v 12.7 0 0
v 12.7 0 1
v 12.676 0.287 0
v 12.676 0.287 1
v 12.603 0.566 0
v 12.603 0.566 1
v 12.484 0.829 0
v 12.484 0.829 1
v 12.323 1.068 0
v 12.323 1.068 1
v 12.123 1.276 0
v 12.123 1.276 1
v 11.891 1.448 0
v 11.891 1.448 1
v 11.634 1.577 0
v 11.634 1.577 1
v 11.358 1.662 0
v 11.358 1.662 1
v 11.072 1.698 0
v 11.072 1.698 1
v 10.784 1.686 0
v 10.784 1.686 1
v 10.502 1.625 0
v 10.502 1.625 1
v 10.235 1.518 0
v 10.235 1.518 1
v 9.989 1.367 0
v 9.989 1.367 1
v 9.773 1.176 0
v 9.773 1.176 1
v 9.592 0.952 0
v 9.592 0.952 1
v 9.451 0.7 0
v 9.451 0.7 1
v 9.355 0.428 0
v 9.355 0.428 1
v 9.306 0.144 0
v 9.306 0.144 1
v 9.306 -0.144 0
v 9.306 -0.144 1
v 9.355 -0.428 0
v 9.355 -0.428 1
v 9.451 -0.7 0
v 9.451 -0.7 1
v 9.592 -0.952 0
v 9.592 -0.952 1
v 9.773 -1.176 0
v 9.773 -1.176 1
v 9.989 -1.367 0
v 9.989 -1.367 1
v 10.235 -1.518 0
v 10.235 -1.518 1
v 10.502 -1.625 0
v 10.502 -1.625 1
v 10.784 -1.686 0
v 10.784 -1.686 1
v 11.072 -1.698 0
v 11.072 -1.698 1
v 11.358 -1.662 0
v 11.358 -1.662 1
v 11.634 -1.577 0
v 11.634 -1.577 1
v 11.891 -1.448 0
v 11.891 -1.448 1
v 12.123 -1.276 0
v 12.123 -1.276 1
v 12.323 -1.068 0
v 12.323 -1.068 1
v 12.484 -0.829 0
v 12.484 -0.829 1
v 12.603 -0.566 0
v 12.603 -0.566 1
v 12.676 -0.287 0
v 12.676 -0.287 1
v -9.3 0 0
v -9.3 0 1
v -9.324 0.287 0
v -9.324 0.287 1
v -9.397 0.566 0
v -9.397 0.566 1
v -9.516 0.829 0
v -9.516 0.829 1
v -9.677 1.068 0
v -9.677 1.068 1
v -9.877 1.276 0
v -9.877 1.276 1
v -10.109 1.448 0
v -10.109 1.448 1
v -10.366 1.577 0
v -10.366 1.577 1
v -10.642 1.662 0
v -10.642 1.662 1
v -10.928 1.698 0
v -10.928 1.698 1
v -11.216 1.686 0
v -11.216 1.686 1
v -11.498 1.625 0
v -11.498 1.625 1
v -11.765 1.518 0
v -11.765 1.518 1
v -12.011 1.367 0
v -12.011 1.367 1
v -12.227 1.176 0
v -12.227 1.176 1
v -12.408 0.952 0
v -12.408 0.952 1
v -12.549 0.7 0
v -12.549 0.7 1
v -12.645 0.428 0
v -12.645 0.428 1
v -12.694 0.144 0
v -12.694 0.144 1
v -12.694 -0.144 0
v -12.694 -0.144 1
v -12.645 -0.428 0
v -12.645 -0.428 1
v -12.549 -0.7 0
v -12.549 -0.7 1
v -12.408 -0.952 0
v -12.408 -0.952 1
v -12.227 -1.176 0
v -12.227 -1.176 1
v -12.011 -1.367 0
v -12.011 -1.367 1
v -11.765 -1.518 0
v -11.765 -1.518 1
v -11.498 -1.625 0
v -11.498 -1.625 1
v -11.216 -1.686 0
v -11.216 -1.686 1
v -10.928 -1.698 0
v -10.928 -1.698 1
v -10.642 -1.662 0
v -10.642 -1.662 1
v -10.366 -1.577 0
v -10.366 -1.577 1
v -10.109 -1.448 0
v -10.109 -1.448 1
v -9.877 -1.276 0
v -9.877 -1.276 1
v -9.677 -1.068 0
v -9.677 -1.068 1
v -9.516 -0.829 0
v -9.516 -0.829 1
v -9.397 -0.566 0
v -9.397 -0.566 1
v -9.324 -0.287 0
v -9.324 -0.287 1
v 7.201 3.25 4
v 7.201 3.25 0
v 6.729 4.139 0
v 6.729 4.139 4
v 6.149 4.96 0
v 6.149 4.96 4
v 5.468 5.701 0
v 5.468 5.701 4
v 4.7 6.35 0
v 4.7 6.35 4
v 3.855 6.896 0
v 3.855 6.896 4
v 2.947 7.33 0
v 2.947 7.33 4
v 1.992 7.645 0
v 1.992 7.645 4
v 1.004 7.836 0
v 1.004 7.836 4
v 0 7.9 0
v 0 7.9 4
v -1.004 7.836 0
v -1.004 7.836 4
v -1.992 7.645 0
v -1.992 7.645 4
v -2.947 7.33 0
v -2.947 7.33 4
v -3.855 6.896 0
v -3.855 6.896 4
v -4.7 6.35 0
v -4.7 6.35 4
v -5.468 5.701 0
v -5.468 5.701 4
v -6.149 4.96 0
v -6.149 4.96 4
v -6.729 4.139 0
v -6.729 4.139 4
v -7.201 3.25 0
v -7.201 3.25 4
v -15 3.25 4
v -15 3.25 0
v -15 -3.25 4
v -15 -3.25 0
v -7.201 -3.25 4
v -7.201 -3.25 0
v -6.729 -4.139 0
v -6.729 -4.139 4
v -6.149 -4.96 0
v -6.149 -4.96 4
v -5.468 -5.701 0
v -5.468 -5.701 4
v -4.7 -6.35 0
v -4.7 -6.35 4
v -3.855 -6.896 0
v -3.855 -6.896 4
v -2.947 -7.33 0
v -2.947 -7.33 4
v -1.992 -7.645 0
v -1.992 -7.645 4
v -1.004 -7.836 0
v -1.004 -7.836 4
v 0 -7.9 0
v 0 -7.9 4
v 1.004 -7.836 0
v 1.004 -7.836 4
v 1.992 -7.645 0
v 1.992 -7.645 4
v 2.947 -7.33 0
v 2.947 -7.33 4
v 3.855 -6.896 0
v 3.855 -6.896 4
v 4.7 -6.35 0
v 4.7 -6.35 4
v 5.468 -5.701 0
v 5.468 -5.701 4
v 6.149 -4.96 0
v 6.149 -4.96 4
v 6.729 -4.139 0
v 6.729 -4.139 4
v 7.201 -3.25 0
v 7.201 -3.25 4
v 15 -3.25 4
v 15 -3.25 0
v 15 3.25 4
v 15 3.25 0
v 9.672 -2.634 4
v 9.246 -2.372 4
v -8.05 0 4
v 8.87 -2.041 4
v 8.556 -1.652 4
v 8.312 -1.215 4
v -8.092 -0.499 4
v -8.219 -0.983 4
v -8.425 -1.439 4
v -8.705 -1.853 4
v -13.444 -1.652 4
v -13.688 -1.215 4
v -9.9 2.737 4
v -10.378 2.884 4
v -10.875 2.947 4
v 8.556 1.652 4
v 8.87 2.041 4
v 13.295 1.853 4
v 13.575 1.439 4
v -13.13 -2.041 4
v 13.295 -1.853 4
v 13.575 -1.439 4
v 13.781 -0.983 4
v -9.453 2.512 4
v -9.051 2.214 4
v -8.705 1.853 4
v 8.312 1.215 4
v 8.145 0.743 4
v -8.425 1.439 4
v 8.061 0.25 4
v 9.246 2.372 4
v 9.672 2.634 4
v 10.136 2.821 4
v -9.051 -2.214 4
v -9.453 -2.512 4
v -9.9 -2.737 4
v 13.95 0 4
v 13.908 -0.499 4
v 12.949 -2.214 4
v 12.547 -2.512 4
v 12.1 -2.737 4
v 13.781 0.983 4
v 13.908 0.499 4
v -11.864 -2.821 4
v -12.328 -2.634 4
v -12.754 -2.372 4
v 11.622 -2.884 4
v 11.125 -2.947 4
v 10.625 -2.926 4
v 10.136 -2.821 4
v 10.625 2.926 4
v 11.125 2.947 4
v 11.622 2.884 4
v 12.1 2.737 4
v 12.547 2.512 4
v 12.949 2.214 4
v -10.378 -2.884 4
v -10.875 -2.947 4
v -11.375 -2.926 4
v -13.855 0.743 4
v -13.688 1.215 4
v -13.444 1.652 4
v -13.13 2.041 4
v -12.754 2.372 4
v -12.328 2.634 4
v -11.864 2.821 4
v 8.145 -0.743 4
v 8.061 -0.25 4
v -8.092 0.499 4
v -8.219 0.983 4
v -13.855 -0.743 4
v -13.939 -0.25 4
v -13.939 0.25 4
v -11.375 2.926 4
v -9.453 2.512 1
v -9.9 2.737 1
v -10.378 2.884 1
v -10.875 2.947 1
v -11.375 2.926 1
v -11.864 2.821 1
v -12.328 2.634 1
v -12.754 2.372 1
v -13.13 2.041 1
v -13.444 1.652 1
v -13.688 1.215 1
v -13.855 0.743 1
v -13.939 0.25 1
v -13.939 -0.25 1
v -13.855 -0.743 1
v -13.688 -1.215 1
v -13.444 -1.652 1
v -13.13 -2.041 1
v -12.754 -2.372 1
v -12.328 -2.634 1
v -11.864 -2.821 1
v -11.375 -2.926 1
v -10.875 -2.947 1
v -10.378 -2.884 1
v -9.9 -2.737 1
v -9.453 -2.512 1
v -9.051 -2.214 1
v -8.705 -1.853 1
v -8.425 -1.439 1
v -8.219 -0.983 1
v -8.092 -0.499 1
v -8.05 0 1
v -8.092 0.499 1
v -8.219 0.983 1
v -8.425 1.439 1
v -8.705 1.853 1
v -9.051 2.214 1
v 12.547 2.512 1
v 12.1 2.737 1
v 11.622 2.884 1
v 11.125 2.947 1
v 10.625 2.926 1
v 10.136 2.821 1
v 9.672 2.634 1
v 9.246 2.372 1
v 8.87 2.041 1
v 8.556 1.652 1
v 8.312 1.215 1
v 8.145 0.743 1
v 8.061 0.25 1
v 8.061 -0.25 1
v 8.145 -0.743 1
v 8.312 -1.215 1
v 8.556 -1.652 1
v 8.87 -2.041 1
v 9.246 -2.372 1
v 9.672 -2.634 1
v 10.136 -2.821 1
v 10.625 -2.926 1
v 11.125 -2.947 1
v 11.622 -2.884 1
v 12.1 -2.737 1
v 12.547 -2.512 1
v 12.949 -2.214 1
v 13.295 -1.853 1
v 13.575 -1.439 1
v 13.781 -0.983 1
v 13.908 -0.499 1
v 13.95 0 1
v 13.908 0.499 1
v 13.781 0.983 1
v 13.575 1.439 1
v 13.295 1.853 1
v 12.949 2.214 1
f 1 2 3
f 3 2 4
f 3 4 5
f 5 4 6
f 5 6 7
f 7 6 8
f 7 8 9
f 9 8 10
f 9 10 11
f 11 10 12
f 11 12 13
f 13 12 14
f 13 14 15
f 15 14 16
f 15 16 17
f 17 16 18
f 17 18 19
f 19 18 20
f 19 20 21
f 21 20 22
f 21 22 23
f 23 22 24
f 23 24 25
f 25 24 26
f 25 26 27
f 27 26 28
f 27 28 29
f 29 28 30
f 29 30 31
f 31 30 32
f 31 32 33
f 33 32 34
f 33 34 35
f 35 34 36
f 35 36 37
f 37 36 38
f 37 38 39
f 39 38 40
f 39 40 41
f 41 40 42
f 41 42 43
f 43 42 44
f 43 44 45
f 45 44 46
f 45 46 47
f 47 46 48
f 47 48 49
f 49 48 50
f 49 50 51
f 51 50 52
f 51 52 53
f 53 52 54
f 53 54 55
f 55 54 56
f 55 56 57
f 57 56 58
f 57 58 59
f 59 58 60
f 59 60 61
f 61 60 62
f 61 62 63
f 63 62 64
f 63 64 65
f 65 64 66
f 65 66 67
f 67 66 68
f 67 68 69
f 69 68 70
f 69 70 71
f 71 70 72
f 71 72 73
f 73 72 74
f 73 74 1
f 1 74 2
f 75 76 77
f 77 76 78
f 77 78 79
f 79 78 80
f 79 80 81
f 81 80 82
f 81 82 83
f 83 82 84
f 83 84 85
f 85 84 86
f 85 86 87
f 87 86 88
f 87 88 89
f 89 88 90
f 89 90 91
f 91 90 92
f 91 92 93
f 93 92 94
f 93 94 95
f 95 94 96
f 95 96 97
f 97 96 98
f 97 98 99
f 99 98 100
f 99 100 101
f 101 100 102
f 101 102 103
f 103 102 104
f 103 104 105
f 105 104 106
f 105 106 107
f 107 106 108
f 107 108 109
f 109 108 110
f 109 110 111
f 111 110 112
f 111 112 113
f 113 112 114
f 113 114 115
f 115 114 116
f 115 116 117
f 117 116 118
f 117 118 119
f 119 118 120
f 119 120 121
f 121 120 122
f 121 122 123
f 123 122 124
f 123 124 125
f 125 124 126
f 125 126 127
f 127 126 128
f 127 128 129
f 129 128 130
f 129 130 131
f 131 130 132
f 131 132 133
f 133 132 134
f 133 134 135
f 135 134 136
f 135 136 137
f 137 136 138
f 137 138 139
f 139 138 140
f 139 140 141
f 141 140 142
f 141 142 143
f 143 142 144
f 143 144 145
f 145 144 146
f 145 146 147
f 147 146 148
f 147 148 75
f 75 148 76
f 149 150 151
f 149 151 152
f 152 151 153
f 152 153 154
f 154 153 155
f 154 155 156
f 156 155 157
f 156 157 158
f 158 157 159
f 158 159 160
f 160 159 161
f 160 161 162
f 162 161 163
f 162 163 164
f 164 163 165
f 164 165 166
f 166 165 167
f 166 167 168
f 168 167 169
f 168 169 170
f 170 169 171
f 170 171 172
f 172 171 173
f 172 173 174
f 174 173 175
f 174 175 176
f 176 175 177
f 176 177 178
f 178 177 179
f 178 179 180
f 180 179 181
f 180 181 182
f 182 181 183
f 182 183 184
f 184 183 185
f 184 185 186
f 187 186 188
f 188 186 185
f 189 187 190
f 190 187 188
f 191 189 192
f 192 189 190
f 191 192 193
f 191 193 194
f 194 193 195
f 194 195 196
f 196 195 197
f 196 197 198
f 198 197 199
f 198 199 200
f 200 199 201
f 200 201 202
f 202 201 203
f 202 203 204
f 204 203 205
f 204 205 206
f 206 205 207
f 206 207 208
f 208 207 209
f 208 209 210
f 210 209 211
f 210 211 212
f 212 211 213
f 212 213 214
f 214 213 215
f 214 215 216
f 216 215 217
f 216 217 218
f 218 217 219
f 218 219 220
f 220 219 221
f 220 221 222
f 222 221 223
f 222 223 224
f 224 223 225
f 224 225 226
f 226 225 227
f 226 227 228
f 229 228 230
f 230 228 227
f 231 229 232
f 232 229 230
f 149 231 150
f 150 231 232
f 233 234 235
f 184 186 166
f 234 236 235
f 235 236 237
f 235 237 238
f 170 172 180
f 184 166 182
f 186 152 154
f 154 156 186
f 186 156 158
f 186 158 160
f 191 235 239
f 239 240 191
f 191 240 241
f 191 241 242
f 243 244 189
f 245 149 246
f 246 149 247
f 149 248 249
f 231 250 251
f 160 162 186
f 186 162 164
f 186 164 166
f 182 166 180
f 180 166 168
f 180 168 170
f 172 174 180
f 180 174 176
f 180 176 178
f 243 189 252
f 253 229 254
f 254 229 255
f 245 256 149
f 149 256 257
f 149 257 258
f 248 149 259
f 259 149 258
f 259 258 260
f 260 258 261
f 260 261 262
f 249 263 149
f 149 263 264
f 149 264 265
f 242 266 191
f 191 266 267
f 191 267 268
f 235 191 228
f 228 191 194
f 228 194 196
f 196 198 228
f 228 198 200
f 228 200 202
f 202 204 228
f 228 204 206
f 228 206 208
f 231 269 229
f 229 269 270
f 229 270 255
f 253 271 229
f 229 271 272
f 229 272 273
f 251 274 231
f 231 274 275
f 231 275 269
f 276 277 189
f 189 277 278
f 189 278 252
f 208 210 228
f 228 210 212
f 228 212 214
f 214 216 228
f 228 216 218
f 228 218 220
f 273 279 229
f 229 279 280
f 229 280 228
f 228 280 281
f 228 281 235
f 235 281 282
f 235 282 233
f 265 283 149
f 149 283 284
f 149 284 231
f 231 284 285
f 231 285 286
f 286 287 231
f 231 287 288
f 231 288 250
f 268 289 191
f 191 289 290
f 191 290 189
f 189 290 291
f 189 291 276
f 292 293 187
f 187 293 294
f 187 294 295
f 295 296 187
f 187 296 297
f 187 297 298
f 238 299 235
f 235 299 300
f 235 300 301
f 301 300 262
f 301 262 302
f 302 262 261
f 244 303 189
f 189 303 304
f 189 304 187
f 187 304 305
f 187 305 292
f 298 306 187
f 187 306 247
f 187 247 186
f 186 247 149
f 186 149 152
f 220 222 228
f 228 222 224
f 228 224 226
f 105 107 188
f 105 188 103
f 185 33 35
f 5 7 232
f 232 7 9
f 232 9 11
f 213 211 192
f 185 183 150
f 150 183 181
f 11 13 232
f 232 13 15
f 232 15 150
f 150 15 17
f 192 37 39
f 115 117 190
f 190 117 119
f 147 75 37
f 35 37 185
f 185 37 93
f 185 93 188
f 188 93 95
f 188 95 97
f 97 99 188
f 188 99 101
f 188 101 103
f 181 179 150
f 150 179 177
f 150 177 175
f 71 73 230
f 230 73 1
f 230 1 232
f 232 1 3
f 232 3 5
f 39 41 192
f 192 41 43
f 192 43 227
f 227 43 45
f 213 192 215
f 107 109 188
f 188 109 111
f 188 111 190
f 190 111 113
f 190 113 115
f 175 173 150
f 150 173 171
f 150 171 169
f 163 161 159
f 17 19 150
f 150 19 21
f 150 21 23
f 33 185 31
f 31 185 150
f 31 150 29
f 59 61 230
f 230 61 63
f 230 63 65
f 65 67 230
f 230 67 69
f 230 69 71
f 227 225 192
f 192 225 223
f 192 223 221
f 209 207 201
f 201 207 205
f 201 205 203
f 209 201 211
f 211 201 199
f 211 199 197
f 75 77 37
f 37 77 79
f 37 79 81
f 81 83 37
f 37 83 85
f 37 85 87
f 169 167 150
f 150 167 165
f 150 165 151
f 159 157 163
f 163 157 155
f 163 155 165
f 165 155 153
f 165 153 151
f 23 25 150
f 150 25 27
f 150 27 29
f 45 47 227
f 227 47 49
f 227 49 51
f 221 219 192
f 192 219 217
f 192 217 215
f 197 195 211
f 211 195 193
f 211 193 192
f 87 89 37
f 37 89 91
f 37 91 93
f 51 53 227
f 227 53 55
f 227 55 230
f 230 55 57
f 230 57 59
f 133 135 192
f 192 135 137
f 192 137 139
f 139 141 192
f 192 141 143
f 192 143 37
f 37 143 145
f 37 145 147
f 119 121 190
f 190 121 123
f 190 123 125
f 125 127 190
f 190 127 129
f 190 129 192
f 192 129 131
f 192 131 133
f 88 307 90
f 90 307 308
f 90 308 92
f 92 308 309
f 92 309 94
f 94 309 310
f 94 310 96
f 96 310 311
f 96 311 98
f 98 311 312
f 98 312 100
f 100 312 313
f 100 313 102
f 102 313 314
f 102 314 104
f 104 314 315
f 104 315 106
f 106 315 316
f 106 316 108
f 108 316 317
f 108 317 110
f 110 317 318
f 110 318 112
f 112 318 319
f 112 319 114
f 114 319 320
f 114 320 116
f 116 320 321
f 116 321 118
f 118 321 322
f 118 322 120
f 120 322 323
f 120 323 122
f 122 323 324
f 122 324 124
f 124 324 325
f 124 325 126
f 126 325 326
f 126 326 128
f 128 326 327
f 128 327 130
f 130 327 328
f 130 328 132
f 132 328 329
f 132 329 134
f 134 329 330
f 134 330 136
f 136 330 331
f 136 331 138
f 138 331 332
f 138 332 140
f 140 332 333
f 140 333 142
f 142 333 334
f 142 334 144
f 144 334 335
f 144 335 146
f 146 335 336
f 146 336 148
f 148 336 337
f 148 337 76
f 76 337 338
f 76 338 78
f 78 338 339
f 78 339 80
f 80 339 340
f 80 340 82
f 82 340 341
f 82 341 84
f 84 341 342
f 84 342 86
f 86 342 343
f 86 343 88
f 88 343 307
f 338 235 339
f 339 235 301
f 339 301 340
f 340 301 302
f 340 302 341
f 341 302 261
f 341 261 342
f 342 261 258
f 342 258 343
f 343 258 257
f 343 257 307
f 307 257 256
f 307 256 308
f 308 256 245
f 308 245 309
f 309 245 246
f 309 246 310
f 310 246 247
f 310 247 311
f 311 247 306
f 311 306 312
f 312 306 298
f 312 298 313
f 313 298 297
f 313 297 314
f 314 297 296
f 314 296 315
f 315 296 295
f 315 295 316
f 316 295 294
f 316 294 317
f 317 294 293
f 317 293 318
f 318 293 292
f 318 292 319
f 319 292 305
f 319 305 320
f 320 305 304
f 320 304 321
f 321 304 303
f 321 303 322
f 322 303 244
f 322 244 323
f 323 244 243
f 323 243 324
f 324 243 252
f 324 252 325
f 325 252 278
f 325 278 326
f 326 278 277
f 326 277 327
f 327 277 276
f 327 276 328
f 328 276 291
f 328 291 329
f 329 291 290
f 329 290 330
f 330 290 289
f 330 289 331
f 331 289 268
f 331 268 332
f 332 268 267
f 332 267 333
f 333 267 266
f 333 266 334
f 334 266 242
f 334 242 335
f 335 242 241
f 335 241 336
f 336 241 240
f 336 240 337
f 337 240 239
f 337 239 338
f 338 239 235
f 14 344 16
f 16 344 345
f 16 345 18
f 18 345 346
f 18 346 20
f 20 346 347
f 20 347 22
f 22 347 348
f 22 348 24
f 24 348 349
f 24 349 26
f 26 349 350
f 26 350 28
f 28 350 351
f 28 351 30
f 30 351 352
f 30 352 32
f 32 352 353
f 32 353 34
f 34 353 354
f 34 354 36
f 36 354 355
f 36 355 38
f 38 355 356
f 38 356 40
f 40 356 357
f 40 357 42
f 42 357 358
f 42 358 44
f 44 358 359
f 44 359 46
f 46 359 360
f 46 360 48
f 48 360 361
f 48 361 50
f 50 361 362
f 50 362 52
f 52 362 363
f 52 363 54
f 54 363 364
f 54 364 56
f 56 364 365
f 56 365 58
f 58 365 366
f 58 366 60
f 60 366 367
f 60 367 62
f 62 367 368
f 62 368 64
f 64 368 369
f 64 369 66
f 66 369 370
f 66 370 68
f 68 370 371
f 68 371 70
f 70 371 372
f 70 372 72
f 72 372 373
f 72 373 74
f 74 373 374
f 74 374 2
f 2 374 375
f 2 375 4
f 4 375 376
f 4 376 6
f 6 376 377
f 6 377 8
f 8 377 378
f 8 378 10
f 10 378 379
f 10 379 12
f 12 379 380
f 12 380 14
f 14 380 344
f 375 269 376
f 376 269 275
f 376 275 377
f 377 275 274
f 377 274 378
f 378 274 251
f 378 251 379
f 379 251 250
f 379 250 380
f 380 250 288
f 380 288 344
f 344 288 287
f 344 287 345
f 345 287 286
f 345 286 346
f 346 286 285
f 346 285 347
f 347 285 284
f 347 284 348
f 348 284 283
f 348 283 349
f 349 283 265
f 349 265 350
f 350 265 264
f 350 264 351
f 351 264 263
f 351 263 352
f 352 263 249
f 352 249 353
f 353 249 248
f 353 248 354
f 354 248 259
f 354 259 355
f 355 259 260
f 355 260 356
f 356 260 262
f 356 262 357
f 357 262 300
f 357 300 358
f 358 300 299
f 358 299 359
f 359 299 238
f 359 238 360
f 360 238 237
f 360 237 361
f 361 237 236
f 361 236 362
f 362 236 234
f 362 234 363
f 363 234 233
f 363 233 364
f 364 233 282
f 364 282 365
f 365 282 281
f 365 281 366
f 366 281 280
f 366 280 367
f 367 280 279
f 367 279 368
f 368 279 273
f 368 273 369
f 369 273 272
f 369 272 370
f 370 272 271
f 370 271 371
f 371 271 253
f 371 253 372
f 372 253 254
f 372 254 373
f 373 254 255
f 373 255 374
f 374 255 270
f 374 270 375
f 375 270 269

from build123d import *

# Parameters (mm, degrees)
SALIENTE_EXTRUIR1_DEPTH = 4
CROQUIS2_R              = 1.7
CORTAR_EXTRUIR1_DEPTH   = 4
CROQUIS3_R              = 2.95
CORTAR_EXTRUIR2_DEPTH   = 3


with BuildPart() as part:
    # Croquis1 → Saliente-Extruir1 (new body)
    with BuildSketch(Plane.XY):
        with BuildLine():
            Line((-7.200520814, -3.25), (-15, -3.25))
            Line((-15, -3.25), (-15, 3.25))
            Line((-15, 3.25), (-7.200520814, 3.25))
            ThreePointArc((-7.200520814, 3.25), (0, 7.9), (7.200520814, 3.25))
            Line((7.200520814, 3.25), (15, 3.25))
            Line((15, 3.25), (15, -3.25))
            Line((15, -3.25), (7.200520814, -3.25))
            ThreePointArc((7.200520814, -3.25), (0, -7.9), (-7.200520814, -3.25))
        make_face()
    extrude(amount=SALIENTE_EXTRUIR1_DEPTH)

    # Croquis2 → Cortar-Extruir1 (cut)
    with BuildSketch(Plane.XY.offset(4)):
        with Locations((-11, 0)):
            Circle(CROQUIS2_R)
        with Locations((11, 0)):
            Circle(CROQUIS2_R)
    extrude(amount=-CORTAR_EXTRUIR1_DEPTH, mode=Mode.SUBTRACT)

    # Croquis3 → Cortar-Extruir2 (cut)
    with BuildSketch(Plane.XY.offset(4)):
        with Locations((-11, 0)):
            Circle(CROQUIS3_R)
        with Locations((11, 0)):
            Circle(CROQUIS3_R)
    extrude(amount=-CORTAR_EXTRUIR2_DEPTH, mode=Mode.SUBTRACT)


solid = part.part
